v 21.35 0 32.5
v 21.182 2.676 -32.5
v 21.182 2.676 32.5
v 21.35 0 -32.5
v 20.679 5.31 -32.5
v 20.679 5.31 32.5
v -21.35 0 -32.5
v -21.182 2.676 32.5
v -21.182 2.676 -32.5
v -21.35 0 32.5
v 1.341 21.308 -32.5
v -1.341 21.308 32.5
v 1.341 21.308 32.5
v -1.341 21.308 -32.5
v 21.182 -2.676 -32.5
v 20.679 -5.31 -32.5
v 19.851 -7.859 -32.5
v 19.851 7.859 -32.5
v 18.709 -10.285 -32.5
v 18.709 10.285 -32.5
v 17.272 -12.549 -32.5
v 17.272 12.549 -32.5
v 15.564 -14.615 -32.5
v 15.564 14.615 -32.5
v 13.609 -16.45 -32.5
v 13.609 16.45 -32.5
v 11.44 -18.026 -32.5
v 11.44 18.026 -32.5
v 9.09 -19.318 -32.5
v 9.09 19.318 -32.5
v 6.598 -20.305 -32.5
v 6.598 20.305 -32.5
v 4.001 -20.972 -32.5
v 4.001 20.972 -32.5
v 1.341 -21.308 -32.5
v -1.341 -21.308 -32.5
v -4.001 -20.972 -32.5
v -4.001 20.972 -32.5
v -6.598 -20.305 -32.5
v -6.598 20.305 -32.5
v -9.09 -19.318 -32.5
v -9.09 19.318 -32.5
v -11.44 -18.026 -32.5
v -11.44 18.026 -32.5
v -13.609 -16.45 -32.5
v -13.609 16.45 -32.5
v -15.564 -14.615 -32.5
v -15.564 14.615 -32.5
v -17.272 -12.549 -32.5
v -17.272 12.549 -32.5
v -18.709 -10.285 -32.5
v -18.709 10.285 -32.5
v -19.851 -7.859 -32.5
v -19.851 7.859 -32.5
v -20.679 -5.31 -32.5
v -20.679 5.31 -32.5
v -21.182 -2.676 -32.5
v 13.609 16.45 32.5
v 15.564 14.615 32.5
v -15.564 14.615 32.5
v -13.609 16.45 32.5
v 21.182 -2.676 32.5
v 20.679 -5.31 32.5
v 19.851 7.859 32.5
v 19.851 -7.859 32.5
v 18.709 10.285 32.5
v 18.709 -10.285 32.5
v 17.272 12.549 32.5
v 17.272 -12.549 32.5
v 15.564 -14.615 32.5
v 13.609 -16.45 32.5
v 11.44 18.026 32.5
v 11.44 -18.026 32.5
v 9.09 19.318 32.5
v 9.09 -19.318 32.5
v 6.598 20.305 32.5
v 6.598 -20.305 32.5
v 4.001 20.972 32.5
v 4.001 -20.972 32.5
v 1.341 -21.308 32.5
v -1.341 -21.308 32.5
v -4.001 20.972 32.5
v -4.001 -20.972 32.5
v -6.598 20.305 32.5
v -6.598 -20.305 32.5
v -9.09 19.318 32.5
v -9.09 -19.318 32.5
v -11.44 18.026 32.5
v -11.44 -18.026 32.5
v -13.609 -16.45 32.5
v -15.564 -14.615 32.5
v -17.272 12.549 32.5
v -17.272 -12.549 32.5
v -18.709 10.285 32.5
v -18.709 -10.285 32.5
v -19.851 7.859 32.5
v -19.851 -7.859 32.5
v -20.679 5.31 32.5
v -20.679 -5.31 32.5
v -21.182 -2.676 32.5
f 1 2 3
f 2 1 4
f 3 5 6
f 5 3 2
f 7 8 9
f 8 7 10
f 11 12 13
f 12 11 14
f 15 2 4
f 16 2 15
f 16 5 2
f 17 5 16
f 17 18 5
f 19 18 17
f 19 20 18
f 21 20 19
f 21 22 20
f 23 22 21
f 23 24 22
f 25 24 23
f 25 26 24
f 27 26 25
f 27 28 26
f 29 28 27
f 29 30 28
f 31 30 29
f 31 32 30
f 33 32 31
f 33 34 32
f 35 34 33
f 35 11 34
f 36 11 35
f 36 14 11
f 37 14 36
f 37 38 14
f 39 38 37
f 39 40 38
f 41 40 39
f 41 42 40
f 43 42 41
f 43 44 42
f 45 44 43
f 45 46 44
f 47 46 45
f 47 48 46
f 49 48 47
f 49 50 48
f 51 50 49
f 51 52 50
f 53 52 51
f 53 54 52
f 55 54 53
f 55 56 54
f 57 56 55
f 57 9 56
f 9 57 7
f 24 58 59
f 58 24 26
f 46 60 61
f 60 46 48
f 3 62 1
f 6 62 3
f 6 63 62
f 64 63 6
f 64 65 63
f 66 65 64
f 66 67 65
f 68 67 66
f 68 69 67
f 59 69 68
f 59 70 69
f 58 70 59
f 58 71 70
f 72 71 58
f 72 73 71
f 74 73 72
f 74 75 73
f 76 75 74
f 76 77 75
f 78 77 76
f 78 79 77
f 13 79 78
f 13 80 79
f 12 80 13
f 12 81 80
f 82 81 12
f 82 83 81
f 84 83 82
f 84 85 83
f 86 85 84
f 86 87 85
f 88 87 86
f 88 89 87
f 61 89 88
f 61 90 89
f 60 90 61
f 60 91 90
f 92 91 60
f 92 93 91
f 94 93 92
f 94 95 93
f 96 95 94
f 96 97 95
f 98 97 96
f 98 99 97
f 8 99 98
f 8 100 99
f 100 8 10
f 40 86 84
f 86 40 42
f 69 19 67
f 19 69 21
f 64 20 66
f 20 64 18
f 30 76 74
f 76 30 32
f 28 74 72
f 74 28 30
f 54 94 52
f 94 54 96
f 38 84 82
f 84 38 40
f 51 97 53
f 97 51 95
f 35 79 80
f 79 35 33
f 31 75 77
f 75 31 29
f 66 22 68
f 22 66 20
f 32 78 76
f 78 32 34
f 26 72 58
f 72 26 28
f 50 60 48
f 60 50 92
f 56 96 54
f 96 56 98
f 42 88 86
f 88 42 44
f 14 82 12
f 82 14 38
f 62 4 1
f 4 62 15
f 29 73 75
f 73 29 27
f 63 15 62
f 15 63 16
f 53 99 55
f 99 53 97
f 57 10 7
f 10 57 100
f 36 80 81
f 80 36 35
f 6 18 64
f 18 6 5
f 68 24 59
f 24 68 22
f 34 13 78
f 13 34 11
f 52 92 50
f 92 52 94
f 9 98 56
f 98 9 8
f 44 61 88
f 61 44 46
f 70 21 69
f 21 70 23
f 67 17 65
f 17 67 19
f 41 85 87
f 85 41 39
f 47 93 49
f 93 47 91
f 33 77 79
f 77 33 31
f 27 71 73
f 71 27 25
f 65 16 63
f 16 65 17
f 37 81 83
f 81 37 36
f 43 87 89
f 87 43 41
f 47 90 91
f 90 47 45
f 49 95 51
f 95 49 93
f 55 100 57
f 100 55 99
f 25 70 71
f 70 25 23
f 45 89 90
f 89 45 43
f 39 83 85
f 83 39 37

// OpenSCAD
$fn = 50;


difference() {
	union() {
		translate(v = [0, 0, -32.5000000000]) {
			cylinder(h = 65, r = 21.3500000000);
		}
	}
	union() {
		translate(v = [0, 0, -100.0000000000]) {
			cylinder(h = 200, r = 0);
		}
	}
}
